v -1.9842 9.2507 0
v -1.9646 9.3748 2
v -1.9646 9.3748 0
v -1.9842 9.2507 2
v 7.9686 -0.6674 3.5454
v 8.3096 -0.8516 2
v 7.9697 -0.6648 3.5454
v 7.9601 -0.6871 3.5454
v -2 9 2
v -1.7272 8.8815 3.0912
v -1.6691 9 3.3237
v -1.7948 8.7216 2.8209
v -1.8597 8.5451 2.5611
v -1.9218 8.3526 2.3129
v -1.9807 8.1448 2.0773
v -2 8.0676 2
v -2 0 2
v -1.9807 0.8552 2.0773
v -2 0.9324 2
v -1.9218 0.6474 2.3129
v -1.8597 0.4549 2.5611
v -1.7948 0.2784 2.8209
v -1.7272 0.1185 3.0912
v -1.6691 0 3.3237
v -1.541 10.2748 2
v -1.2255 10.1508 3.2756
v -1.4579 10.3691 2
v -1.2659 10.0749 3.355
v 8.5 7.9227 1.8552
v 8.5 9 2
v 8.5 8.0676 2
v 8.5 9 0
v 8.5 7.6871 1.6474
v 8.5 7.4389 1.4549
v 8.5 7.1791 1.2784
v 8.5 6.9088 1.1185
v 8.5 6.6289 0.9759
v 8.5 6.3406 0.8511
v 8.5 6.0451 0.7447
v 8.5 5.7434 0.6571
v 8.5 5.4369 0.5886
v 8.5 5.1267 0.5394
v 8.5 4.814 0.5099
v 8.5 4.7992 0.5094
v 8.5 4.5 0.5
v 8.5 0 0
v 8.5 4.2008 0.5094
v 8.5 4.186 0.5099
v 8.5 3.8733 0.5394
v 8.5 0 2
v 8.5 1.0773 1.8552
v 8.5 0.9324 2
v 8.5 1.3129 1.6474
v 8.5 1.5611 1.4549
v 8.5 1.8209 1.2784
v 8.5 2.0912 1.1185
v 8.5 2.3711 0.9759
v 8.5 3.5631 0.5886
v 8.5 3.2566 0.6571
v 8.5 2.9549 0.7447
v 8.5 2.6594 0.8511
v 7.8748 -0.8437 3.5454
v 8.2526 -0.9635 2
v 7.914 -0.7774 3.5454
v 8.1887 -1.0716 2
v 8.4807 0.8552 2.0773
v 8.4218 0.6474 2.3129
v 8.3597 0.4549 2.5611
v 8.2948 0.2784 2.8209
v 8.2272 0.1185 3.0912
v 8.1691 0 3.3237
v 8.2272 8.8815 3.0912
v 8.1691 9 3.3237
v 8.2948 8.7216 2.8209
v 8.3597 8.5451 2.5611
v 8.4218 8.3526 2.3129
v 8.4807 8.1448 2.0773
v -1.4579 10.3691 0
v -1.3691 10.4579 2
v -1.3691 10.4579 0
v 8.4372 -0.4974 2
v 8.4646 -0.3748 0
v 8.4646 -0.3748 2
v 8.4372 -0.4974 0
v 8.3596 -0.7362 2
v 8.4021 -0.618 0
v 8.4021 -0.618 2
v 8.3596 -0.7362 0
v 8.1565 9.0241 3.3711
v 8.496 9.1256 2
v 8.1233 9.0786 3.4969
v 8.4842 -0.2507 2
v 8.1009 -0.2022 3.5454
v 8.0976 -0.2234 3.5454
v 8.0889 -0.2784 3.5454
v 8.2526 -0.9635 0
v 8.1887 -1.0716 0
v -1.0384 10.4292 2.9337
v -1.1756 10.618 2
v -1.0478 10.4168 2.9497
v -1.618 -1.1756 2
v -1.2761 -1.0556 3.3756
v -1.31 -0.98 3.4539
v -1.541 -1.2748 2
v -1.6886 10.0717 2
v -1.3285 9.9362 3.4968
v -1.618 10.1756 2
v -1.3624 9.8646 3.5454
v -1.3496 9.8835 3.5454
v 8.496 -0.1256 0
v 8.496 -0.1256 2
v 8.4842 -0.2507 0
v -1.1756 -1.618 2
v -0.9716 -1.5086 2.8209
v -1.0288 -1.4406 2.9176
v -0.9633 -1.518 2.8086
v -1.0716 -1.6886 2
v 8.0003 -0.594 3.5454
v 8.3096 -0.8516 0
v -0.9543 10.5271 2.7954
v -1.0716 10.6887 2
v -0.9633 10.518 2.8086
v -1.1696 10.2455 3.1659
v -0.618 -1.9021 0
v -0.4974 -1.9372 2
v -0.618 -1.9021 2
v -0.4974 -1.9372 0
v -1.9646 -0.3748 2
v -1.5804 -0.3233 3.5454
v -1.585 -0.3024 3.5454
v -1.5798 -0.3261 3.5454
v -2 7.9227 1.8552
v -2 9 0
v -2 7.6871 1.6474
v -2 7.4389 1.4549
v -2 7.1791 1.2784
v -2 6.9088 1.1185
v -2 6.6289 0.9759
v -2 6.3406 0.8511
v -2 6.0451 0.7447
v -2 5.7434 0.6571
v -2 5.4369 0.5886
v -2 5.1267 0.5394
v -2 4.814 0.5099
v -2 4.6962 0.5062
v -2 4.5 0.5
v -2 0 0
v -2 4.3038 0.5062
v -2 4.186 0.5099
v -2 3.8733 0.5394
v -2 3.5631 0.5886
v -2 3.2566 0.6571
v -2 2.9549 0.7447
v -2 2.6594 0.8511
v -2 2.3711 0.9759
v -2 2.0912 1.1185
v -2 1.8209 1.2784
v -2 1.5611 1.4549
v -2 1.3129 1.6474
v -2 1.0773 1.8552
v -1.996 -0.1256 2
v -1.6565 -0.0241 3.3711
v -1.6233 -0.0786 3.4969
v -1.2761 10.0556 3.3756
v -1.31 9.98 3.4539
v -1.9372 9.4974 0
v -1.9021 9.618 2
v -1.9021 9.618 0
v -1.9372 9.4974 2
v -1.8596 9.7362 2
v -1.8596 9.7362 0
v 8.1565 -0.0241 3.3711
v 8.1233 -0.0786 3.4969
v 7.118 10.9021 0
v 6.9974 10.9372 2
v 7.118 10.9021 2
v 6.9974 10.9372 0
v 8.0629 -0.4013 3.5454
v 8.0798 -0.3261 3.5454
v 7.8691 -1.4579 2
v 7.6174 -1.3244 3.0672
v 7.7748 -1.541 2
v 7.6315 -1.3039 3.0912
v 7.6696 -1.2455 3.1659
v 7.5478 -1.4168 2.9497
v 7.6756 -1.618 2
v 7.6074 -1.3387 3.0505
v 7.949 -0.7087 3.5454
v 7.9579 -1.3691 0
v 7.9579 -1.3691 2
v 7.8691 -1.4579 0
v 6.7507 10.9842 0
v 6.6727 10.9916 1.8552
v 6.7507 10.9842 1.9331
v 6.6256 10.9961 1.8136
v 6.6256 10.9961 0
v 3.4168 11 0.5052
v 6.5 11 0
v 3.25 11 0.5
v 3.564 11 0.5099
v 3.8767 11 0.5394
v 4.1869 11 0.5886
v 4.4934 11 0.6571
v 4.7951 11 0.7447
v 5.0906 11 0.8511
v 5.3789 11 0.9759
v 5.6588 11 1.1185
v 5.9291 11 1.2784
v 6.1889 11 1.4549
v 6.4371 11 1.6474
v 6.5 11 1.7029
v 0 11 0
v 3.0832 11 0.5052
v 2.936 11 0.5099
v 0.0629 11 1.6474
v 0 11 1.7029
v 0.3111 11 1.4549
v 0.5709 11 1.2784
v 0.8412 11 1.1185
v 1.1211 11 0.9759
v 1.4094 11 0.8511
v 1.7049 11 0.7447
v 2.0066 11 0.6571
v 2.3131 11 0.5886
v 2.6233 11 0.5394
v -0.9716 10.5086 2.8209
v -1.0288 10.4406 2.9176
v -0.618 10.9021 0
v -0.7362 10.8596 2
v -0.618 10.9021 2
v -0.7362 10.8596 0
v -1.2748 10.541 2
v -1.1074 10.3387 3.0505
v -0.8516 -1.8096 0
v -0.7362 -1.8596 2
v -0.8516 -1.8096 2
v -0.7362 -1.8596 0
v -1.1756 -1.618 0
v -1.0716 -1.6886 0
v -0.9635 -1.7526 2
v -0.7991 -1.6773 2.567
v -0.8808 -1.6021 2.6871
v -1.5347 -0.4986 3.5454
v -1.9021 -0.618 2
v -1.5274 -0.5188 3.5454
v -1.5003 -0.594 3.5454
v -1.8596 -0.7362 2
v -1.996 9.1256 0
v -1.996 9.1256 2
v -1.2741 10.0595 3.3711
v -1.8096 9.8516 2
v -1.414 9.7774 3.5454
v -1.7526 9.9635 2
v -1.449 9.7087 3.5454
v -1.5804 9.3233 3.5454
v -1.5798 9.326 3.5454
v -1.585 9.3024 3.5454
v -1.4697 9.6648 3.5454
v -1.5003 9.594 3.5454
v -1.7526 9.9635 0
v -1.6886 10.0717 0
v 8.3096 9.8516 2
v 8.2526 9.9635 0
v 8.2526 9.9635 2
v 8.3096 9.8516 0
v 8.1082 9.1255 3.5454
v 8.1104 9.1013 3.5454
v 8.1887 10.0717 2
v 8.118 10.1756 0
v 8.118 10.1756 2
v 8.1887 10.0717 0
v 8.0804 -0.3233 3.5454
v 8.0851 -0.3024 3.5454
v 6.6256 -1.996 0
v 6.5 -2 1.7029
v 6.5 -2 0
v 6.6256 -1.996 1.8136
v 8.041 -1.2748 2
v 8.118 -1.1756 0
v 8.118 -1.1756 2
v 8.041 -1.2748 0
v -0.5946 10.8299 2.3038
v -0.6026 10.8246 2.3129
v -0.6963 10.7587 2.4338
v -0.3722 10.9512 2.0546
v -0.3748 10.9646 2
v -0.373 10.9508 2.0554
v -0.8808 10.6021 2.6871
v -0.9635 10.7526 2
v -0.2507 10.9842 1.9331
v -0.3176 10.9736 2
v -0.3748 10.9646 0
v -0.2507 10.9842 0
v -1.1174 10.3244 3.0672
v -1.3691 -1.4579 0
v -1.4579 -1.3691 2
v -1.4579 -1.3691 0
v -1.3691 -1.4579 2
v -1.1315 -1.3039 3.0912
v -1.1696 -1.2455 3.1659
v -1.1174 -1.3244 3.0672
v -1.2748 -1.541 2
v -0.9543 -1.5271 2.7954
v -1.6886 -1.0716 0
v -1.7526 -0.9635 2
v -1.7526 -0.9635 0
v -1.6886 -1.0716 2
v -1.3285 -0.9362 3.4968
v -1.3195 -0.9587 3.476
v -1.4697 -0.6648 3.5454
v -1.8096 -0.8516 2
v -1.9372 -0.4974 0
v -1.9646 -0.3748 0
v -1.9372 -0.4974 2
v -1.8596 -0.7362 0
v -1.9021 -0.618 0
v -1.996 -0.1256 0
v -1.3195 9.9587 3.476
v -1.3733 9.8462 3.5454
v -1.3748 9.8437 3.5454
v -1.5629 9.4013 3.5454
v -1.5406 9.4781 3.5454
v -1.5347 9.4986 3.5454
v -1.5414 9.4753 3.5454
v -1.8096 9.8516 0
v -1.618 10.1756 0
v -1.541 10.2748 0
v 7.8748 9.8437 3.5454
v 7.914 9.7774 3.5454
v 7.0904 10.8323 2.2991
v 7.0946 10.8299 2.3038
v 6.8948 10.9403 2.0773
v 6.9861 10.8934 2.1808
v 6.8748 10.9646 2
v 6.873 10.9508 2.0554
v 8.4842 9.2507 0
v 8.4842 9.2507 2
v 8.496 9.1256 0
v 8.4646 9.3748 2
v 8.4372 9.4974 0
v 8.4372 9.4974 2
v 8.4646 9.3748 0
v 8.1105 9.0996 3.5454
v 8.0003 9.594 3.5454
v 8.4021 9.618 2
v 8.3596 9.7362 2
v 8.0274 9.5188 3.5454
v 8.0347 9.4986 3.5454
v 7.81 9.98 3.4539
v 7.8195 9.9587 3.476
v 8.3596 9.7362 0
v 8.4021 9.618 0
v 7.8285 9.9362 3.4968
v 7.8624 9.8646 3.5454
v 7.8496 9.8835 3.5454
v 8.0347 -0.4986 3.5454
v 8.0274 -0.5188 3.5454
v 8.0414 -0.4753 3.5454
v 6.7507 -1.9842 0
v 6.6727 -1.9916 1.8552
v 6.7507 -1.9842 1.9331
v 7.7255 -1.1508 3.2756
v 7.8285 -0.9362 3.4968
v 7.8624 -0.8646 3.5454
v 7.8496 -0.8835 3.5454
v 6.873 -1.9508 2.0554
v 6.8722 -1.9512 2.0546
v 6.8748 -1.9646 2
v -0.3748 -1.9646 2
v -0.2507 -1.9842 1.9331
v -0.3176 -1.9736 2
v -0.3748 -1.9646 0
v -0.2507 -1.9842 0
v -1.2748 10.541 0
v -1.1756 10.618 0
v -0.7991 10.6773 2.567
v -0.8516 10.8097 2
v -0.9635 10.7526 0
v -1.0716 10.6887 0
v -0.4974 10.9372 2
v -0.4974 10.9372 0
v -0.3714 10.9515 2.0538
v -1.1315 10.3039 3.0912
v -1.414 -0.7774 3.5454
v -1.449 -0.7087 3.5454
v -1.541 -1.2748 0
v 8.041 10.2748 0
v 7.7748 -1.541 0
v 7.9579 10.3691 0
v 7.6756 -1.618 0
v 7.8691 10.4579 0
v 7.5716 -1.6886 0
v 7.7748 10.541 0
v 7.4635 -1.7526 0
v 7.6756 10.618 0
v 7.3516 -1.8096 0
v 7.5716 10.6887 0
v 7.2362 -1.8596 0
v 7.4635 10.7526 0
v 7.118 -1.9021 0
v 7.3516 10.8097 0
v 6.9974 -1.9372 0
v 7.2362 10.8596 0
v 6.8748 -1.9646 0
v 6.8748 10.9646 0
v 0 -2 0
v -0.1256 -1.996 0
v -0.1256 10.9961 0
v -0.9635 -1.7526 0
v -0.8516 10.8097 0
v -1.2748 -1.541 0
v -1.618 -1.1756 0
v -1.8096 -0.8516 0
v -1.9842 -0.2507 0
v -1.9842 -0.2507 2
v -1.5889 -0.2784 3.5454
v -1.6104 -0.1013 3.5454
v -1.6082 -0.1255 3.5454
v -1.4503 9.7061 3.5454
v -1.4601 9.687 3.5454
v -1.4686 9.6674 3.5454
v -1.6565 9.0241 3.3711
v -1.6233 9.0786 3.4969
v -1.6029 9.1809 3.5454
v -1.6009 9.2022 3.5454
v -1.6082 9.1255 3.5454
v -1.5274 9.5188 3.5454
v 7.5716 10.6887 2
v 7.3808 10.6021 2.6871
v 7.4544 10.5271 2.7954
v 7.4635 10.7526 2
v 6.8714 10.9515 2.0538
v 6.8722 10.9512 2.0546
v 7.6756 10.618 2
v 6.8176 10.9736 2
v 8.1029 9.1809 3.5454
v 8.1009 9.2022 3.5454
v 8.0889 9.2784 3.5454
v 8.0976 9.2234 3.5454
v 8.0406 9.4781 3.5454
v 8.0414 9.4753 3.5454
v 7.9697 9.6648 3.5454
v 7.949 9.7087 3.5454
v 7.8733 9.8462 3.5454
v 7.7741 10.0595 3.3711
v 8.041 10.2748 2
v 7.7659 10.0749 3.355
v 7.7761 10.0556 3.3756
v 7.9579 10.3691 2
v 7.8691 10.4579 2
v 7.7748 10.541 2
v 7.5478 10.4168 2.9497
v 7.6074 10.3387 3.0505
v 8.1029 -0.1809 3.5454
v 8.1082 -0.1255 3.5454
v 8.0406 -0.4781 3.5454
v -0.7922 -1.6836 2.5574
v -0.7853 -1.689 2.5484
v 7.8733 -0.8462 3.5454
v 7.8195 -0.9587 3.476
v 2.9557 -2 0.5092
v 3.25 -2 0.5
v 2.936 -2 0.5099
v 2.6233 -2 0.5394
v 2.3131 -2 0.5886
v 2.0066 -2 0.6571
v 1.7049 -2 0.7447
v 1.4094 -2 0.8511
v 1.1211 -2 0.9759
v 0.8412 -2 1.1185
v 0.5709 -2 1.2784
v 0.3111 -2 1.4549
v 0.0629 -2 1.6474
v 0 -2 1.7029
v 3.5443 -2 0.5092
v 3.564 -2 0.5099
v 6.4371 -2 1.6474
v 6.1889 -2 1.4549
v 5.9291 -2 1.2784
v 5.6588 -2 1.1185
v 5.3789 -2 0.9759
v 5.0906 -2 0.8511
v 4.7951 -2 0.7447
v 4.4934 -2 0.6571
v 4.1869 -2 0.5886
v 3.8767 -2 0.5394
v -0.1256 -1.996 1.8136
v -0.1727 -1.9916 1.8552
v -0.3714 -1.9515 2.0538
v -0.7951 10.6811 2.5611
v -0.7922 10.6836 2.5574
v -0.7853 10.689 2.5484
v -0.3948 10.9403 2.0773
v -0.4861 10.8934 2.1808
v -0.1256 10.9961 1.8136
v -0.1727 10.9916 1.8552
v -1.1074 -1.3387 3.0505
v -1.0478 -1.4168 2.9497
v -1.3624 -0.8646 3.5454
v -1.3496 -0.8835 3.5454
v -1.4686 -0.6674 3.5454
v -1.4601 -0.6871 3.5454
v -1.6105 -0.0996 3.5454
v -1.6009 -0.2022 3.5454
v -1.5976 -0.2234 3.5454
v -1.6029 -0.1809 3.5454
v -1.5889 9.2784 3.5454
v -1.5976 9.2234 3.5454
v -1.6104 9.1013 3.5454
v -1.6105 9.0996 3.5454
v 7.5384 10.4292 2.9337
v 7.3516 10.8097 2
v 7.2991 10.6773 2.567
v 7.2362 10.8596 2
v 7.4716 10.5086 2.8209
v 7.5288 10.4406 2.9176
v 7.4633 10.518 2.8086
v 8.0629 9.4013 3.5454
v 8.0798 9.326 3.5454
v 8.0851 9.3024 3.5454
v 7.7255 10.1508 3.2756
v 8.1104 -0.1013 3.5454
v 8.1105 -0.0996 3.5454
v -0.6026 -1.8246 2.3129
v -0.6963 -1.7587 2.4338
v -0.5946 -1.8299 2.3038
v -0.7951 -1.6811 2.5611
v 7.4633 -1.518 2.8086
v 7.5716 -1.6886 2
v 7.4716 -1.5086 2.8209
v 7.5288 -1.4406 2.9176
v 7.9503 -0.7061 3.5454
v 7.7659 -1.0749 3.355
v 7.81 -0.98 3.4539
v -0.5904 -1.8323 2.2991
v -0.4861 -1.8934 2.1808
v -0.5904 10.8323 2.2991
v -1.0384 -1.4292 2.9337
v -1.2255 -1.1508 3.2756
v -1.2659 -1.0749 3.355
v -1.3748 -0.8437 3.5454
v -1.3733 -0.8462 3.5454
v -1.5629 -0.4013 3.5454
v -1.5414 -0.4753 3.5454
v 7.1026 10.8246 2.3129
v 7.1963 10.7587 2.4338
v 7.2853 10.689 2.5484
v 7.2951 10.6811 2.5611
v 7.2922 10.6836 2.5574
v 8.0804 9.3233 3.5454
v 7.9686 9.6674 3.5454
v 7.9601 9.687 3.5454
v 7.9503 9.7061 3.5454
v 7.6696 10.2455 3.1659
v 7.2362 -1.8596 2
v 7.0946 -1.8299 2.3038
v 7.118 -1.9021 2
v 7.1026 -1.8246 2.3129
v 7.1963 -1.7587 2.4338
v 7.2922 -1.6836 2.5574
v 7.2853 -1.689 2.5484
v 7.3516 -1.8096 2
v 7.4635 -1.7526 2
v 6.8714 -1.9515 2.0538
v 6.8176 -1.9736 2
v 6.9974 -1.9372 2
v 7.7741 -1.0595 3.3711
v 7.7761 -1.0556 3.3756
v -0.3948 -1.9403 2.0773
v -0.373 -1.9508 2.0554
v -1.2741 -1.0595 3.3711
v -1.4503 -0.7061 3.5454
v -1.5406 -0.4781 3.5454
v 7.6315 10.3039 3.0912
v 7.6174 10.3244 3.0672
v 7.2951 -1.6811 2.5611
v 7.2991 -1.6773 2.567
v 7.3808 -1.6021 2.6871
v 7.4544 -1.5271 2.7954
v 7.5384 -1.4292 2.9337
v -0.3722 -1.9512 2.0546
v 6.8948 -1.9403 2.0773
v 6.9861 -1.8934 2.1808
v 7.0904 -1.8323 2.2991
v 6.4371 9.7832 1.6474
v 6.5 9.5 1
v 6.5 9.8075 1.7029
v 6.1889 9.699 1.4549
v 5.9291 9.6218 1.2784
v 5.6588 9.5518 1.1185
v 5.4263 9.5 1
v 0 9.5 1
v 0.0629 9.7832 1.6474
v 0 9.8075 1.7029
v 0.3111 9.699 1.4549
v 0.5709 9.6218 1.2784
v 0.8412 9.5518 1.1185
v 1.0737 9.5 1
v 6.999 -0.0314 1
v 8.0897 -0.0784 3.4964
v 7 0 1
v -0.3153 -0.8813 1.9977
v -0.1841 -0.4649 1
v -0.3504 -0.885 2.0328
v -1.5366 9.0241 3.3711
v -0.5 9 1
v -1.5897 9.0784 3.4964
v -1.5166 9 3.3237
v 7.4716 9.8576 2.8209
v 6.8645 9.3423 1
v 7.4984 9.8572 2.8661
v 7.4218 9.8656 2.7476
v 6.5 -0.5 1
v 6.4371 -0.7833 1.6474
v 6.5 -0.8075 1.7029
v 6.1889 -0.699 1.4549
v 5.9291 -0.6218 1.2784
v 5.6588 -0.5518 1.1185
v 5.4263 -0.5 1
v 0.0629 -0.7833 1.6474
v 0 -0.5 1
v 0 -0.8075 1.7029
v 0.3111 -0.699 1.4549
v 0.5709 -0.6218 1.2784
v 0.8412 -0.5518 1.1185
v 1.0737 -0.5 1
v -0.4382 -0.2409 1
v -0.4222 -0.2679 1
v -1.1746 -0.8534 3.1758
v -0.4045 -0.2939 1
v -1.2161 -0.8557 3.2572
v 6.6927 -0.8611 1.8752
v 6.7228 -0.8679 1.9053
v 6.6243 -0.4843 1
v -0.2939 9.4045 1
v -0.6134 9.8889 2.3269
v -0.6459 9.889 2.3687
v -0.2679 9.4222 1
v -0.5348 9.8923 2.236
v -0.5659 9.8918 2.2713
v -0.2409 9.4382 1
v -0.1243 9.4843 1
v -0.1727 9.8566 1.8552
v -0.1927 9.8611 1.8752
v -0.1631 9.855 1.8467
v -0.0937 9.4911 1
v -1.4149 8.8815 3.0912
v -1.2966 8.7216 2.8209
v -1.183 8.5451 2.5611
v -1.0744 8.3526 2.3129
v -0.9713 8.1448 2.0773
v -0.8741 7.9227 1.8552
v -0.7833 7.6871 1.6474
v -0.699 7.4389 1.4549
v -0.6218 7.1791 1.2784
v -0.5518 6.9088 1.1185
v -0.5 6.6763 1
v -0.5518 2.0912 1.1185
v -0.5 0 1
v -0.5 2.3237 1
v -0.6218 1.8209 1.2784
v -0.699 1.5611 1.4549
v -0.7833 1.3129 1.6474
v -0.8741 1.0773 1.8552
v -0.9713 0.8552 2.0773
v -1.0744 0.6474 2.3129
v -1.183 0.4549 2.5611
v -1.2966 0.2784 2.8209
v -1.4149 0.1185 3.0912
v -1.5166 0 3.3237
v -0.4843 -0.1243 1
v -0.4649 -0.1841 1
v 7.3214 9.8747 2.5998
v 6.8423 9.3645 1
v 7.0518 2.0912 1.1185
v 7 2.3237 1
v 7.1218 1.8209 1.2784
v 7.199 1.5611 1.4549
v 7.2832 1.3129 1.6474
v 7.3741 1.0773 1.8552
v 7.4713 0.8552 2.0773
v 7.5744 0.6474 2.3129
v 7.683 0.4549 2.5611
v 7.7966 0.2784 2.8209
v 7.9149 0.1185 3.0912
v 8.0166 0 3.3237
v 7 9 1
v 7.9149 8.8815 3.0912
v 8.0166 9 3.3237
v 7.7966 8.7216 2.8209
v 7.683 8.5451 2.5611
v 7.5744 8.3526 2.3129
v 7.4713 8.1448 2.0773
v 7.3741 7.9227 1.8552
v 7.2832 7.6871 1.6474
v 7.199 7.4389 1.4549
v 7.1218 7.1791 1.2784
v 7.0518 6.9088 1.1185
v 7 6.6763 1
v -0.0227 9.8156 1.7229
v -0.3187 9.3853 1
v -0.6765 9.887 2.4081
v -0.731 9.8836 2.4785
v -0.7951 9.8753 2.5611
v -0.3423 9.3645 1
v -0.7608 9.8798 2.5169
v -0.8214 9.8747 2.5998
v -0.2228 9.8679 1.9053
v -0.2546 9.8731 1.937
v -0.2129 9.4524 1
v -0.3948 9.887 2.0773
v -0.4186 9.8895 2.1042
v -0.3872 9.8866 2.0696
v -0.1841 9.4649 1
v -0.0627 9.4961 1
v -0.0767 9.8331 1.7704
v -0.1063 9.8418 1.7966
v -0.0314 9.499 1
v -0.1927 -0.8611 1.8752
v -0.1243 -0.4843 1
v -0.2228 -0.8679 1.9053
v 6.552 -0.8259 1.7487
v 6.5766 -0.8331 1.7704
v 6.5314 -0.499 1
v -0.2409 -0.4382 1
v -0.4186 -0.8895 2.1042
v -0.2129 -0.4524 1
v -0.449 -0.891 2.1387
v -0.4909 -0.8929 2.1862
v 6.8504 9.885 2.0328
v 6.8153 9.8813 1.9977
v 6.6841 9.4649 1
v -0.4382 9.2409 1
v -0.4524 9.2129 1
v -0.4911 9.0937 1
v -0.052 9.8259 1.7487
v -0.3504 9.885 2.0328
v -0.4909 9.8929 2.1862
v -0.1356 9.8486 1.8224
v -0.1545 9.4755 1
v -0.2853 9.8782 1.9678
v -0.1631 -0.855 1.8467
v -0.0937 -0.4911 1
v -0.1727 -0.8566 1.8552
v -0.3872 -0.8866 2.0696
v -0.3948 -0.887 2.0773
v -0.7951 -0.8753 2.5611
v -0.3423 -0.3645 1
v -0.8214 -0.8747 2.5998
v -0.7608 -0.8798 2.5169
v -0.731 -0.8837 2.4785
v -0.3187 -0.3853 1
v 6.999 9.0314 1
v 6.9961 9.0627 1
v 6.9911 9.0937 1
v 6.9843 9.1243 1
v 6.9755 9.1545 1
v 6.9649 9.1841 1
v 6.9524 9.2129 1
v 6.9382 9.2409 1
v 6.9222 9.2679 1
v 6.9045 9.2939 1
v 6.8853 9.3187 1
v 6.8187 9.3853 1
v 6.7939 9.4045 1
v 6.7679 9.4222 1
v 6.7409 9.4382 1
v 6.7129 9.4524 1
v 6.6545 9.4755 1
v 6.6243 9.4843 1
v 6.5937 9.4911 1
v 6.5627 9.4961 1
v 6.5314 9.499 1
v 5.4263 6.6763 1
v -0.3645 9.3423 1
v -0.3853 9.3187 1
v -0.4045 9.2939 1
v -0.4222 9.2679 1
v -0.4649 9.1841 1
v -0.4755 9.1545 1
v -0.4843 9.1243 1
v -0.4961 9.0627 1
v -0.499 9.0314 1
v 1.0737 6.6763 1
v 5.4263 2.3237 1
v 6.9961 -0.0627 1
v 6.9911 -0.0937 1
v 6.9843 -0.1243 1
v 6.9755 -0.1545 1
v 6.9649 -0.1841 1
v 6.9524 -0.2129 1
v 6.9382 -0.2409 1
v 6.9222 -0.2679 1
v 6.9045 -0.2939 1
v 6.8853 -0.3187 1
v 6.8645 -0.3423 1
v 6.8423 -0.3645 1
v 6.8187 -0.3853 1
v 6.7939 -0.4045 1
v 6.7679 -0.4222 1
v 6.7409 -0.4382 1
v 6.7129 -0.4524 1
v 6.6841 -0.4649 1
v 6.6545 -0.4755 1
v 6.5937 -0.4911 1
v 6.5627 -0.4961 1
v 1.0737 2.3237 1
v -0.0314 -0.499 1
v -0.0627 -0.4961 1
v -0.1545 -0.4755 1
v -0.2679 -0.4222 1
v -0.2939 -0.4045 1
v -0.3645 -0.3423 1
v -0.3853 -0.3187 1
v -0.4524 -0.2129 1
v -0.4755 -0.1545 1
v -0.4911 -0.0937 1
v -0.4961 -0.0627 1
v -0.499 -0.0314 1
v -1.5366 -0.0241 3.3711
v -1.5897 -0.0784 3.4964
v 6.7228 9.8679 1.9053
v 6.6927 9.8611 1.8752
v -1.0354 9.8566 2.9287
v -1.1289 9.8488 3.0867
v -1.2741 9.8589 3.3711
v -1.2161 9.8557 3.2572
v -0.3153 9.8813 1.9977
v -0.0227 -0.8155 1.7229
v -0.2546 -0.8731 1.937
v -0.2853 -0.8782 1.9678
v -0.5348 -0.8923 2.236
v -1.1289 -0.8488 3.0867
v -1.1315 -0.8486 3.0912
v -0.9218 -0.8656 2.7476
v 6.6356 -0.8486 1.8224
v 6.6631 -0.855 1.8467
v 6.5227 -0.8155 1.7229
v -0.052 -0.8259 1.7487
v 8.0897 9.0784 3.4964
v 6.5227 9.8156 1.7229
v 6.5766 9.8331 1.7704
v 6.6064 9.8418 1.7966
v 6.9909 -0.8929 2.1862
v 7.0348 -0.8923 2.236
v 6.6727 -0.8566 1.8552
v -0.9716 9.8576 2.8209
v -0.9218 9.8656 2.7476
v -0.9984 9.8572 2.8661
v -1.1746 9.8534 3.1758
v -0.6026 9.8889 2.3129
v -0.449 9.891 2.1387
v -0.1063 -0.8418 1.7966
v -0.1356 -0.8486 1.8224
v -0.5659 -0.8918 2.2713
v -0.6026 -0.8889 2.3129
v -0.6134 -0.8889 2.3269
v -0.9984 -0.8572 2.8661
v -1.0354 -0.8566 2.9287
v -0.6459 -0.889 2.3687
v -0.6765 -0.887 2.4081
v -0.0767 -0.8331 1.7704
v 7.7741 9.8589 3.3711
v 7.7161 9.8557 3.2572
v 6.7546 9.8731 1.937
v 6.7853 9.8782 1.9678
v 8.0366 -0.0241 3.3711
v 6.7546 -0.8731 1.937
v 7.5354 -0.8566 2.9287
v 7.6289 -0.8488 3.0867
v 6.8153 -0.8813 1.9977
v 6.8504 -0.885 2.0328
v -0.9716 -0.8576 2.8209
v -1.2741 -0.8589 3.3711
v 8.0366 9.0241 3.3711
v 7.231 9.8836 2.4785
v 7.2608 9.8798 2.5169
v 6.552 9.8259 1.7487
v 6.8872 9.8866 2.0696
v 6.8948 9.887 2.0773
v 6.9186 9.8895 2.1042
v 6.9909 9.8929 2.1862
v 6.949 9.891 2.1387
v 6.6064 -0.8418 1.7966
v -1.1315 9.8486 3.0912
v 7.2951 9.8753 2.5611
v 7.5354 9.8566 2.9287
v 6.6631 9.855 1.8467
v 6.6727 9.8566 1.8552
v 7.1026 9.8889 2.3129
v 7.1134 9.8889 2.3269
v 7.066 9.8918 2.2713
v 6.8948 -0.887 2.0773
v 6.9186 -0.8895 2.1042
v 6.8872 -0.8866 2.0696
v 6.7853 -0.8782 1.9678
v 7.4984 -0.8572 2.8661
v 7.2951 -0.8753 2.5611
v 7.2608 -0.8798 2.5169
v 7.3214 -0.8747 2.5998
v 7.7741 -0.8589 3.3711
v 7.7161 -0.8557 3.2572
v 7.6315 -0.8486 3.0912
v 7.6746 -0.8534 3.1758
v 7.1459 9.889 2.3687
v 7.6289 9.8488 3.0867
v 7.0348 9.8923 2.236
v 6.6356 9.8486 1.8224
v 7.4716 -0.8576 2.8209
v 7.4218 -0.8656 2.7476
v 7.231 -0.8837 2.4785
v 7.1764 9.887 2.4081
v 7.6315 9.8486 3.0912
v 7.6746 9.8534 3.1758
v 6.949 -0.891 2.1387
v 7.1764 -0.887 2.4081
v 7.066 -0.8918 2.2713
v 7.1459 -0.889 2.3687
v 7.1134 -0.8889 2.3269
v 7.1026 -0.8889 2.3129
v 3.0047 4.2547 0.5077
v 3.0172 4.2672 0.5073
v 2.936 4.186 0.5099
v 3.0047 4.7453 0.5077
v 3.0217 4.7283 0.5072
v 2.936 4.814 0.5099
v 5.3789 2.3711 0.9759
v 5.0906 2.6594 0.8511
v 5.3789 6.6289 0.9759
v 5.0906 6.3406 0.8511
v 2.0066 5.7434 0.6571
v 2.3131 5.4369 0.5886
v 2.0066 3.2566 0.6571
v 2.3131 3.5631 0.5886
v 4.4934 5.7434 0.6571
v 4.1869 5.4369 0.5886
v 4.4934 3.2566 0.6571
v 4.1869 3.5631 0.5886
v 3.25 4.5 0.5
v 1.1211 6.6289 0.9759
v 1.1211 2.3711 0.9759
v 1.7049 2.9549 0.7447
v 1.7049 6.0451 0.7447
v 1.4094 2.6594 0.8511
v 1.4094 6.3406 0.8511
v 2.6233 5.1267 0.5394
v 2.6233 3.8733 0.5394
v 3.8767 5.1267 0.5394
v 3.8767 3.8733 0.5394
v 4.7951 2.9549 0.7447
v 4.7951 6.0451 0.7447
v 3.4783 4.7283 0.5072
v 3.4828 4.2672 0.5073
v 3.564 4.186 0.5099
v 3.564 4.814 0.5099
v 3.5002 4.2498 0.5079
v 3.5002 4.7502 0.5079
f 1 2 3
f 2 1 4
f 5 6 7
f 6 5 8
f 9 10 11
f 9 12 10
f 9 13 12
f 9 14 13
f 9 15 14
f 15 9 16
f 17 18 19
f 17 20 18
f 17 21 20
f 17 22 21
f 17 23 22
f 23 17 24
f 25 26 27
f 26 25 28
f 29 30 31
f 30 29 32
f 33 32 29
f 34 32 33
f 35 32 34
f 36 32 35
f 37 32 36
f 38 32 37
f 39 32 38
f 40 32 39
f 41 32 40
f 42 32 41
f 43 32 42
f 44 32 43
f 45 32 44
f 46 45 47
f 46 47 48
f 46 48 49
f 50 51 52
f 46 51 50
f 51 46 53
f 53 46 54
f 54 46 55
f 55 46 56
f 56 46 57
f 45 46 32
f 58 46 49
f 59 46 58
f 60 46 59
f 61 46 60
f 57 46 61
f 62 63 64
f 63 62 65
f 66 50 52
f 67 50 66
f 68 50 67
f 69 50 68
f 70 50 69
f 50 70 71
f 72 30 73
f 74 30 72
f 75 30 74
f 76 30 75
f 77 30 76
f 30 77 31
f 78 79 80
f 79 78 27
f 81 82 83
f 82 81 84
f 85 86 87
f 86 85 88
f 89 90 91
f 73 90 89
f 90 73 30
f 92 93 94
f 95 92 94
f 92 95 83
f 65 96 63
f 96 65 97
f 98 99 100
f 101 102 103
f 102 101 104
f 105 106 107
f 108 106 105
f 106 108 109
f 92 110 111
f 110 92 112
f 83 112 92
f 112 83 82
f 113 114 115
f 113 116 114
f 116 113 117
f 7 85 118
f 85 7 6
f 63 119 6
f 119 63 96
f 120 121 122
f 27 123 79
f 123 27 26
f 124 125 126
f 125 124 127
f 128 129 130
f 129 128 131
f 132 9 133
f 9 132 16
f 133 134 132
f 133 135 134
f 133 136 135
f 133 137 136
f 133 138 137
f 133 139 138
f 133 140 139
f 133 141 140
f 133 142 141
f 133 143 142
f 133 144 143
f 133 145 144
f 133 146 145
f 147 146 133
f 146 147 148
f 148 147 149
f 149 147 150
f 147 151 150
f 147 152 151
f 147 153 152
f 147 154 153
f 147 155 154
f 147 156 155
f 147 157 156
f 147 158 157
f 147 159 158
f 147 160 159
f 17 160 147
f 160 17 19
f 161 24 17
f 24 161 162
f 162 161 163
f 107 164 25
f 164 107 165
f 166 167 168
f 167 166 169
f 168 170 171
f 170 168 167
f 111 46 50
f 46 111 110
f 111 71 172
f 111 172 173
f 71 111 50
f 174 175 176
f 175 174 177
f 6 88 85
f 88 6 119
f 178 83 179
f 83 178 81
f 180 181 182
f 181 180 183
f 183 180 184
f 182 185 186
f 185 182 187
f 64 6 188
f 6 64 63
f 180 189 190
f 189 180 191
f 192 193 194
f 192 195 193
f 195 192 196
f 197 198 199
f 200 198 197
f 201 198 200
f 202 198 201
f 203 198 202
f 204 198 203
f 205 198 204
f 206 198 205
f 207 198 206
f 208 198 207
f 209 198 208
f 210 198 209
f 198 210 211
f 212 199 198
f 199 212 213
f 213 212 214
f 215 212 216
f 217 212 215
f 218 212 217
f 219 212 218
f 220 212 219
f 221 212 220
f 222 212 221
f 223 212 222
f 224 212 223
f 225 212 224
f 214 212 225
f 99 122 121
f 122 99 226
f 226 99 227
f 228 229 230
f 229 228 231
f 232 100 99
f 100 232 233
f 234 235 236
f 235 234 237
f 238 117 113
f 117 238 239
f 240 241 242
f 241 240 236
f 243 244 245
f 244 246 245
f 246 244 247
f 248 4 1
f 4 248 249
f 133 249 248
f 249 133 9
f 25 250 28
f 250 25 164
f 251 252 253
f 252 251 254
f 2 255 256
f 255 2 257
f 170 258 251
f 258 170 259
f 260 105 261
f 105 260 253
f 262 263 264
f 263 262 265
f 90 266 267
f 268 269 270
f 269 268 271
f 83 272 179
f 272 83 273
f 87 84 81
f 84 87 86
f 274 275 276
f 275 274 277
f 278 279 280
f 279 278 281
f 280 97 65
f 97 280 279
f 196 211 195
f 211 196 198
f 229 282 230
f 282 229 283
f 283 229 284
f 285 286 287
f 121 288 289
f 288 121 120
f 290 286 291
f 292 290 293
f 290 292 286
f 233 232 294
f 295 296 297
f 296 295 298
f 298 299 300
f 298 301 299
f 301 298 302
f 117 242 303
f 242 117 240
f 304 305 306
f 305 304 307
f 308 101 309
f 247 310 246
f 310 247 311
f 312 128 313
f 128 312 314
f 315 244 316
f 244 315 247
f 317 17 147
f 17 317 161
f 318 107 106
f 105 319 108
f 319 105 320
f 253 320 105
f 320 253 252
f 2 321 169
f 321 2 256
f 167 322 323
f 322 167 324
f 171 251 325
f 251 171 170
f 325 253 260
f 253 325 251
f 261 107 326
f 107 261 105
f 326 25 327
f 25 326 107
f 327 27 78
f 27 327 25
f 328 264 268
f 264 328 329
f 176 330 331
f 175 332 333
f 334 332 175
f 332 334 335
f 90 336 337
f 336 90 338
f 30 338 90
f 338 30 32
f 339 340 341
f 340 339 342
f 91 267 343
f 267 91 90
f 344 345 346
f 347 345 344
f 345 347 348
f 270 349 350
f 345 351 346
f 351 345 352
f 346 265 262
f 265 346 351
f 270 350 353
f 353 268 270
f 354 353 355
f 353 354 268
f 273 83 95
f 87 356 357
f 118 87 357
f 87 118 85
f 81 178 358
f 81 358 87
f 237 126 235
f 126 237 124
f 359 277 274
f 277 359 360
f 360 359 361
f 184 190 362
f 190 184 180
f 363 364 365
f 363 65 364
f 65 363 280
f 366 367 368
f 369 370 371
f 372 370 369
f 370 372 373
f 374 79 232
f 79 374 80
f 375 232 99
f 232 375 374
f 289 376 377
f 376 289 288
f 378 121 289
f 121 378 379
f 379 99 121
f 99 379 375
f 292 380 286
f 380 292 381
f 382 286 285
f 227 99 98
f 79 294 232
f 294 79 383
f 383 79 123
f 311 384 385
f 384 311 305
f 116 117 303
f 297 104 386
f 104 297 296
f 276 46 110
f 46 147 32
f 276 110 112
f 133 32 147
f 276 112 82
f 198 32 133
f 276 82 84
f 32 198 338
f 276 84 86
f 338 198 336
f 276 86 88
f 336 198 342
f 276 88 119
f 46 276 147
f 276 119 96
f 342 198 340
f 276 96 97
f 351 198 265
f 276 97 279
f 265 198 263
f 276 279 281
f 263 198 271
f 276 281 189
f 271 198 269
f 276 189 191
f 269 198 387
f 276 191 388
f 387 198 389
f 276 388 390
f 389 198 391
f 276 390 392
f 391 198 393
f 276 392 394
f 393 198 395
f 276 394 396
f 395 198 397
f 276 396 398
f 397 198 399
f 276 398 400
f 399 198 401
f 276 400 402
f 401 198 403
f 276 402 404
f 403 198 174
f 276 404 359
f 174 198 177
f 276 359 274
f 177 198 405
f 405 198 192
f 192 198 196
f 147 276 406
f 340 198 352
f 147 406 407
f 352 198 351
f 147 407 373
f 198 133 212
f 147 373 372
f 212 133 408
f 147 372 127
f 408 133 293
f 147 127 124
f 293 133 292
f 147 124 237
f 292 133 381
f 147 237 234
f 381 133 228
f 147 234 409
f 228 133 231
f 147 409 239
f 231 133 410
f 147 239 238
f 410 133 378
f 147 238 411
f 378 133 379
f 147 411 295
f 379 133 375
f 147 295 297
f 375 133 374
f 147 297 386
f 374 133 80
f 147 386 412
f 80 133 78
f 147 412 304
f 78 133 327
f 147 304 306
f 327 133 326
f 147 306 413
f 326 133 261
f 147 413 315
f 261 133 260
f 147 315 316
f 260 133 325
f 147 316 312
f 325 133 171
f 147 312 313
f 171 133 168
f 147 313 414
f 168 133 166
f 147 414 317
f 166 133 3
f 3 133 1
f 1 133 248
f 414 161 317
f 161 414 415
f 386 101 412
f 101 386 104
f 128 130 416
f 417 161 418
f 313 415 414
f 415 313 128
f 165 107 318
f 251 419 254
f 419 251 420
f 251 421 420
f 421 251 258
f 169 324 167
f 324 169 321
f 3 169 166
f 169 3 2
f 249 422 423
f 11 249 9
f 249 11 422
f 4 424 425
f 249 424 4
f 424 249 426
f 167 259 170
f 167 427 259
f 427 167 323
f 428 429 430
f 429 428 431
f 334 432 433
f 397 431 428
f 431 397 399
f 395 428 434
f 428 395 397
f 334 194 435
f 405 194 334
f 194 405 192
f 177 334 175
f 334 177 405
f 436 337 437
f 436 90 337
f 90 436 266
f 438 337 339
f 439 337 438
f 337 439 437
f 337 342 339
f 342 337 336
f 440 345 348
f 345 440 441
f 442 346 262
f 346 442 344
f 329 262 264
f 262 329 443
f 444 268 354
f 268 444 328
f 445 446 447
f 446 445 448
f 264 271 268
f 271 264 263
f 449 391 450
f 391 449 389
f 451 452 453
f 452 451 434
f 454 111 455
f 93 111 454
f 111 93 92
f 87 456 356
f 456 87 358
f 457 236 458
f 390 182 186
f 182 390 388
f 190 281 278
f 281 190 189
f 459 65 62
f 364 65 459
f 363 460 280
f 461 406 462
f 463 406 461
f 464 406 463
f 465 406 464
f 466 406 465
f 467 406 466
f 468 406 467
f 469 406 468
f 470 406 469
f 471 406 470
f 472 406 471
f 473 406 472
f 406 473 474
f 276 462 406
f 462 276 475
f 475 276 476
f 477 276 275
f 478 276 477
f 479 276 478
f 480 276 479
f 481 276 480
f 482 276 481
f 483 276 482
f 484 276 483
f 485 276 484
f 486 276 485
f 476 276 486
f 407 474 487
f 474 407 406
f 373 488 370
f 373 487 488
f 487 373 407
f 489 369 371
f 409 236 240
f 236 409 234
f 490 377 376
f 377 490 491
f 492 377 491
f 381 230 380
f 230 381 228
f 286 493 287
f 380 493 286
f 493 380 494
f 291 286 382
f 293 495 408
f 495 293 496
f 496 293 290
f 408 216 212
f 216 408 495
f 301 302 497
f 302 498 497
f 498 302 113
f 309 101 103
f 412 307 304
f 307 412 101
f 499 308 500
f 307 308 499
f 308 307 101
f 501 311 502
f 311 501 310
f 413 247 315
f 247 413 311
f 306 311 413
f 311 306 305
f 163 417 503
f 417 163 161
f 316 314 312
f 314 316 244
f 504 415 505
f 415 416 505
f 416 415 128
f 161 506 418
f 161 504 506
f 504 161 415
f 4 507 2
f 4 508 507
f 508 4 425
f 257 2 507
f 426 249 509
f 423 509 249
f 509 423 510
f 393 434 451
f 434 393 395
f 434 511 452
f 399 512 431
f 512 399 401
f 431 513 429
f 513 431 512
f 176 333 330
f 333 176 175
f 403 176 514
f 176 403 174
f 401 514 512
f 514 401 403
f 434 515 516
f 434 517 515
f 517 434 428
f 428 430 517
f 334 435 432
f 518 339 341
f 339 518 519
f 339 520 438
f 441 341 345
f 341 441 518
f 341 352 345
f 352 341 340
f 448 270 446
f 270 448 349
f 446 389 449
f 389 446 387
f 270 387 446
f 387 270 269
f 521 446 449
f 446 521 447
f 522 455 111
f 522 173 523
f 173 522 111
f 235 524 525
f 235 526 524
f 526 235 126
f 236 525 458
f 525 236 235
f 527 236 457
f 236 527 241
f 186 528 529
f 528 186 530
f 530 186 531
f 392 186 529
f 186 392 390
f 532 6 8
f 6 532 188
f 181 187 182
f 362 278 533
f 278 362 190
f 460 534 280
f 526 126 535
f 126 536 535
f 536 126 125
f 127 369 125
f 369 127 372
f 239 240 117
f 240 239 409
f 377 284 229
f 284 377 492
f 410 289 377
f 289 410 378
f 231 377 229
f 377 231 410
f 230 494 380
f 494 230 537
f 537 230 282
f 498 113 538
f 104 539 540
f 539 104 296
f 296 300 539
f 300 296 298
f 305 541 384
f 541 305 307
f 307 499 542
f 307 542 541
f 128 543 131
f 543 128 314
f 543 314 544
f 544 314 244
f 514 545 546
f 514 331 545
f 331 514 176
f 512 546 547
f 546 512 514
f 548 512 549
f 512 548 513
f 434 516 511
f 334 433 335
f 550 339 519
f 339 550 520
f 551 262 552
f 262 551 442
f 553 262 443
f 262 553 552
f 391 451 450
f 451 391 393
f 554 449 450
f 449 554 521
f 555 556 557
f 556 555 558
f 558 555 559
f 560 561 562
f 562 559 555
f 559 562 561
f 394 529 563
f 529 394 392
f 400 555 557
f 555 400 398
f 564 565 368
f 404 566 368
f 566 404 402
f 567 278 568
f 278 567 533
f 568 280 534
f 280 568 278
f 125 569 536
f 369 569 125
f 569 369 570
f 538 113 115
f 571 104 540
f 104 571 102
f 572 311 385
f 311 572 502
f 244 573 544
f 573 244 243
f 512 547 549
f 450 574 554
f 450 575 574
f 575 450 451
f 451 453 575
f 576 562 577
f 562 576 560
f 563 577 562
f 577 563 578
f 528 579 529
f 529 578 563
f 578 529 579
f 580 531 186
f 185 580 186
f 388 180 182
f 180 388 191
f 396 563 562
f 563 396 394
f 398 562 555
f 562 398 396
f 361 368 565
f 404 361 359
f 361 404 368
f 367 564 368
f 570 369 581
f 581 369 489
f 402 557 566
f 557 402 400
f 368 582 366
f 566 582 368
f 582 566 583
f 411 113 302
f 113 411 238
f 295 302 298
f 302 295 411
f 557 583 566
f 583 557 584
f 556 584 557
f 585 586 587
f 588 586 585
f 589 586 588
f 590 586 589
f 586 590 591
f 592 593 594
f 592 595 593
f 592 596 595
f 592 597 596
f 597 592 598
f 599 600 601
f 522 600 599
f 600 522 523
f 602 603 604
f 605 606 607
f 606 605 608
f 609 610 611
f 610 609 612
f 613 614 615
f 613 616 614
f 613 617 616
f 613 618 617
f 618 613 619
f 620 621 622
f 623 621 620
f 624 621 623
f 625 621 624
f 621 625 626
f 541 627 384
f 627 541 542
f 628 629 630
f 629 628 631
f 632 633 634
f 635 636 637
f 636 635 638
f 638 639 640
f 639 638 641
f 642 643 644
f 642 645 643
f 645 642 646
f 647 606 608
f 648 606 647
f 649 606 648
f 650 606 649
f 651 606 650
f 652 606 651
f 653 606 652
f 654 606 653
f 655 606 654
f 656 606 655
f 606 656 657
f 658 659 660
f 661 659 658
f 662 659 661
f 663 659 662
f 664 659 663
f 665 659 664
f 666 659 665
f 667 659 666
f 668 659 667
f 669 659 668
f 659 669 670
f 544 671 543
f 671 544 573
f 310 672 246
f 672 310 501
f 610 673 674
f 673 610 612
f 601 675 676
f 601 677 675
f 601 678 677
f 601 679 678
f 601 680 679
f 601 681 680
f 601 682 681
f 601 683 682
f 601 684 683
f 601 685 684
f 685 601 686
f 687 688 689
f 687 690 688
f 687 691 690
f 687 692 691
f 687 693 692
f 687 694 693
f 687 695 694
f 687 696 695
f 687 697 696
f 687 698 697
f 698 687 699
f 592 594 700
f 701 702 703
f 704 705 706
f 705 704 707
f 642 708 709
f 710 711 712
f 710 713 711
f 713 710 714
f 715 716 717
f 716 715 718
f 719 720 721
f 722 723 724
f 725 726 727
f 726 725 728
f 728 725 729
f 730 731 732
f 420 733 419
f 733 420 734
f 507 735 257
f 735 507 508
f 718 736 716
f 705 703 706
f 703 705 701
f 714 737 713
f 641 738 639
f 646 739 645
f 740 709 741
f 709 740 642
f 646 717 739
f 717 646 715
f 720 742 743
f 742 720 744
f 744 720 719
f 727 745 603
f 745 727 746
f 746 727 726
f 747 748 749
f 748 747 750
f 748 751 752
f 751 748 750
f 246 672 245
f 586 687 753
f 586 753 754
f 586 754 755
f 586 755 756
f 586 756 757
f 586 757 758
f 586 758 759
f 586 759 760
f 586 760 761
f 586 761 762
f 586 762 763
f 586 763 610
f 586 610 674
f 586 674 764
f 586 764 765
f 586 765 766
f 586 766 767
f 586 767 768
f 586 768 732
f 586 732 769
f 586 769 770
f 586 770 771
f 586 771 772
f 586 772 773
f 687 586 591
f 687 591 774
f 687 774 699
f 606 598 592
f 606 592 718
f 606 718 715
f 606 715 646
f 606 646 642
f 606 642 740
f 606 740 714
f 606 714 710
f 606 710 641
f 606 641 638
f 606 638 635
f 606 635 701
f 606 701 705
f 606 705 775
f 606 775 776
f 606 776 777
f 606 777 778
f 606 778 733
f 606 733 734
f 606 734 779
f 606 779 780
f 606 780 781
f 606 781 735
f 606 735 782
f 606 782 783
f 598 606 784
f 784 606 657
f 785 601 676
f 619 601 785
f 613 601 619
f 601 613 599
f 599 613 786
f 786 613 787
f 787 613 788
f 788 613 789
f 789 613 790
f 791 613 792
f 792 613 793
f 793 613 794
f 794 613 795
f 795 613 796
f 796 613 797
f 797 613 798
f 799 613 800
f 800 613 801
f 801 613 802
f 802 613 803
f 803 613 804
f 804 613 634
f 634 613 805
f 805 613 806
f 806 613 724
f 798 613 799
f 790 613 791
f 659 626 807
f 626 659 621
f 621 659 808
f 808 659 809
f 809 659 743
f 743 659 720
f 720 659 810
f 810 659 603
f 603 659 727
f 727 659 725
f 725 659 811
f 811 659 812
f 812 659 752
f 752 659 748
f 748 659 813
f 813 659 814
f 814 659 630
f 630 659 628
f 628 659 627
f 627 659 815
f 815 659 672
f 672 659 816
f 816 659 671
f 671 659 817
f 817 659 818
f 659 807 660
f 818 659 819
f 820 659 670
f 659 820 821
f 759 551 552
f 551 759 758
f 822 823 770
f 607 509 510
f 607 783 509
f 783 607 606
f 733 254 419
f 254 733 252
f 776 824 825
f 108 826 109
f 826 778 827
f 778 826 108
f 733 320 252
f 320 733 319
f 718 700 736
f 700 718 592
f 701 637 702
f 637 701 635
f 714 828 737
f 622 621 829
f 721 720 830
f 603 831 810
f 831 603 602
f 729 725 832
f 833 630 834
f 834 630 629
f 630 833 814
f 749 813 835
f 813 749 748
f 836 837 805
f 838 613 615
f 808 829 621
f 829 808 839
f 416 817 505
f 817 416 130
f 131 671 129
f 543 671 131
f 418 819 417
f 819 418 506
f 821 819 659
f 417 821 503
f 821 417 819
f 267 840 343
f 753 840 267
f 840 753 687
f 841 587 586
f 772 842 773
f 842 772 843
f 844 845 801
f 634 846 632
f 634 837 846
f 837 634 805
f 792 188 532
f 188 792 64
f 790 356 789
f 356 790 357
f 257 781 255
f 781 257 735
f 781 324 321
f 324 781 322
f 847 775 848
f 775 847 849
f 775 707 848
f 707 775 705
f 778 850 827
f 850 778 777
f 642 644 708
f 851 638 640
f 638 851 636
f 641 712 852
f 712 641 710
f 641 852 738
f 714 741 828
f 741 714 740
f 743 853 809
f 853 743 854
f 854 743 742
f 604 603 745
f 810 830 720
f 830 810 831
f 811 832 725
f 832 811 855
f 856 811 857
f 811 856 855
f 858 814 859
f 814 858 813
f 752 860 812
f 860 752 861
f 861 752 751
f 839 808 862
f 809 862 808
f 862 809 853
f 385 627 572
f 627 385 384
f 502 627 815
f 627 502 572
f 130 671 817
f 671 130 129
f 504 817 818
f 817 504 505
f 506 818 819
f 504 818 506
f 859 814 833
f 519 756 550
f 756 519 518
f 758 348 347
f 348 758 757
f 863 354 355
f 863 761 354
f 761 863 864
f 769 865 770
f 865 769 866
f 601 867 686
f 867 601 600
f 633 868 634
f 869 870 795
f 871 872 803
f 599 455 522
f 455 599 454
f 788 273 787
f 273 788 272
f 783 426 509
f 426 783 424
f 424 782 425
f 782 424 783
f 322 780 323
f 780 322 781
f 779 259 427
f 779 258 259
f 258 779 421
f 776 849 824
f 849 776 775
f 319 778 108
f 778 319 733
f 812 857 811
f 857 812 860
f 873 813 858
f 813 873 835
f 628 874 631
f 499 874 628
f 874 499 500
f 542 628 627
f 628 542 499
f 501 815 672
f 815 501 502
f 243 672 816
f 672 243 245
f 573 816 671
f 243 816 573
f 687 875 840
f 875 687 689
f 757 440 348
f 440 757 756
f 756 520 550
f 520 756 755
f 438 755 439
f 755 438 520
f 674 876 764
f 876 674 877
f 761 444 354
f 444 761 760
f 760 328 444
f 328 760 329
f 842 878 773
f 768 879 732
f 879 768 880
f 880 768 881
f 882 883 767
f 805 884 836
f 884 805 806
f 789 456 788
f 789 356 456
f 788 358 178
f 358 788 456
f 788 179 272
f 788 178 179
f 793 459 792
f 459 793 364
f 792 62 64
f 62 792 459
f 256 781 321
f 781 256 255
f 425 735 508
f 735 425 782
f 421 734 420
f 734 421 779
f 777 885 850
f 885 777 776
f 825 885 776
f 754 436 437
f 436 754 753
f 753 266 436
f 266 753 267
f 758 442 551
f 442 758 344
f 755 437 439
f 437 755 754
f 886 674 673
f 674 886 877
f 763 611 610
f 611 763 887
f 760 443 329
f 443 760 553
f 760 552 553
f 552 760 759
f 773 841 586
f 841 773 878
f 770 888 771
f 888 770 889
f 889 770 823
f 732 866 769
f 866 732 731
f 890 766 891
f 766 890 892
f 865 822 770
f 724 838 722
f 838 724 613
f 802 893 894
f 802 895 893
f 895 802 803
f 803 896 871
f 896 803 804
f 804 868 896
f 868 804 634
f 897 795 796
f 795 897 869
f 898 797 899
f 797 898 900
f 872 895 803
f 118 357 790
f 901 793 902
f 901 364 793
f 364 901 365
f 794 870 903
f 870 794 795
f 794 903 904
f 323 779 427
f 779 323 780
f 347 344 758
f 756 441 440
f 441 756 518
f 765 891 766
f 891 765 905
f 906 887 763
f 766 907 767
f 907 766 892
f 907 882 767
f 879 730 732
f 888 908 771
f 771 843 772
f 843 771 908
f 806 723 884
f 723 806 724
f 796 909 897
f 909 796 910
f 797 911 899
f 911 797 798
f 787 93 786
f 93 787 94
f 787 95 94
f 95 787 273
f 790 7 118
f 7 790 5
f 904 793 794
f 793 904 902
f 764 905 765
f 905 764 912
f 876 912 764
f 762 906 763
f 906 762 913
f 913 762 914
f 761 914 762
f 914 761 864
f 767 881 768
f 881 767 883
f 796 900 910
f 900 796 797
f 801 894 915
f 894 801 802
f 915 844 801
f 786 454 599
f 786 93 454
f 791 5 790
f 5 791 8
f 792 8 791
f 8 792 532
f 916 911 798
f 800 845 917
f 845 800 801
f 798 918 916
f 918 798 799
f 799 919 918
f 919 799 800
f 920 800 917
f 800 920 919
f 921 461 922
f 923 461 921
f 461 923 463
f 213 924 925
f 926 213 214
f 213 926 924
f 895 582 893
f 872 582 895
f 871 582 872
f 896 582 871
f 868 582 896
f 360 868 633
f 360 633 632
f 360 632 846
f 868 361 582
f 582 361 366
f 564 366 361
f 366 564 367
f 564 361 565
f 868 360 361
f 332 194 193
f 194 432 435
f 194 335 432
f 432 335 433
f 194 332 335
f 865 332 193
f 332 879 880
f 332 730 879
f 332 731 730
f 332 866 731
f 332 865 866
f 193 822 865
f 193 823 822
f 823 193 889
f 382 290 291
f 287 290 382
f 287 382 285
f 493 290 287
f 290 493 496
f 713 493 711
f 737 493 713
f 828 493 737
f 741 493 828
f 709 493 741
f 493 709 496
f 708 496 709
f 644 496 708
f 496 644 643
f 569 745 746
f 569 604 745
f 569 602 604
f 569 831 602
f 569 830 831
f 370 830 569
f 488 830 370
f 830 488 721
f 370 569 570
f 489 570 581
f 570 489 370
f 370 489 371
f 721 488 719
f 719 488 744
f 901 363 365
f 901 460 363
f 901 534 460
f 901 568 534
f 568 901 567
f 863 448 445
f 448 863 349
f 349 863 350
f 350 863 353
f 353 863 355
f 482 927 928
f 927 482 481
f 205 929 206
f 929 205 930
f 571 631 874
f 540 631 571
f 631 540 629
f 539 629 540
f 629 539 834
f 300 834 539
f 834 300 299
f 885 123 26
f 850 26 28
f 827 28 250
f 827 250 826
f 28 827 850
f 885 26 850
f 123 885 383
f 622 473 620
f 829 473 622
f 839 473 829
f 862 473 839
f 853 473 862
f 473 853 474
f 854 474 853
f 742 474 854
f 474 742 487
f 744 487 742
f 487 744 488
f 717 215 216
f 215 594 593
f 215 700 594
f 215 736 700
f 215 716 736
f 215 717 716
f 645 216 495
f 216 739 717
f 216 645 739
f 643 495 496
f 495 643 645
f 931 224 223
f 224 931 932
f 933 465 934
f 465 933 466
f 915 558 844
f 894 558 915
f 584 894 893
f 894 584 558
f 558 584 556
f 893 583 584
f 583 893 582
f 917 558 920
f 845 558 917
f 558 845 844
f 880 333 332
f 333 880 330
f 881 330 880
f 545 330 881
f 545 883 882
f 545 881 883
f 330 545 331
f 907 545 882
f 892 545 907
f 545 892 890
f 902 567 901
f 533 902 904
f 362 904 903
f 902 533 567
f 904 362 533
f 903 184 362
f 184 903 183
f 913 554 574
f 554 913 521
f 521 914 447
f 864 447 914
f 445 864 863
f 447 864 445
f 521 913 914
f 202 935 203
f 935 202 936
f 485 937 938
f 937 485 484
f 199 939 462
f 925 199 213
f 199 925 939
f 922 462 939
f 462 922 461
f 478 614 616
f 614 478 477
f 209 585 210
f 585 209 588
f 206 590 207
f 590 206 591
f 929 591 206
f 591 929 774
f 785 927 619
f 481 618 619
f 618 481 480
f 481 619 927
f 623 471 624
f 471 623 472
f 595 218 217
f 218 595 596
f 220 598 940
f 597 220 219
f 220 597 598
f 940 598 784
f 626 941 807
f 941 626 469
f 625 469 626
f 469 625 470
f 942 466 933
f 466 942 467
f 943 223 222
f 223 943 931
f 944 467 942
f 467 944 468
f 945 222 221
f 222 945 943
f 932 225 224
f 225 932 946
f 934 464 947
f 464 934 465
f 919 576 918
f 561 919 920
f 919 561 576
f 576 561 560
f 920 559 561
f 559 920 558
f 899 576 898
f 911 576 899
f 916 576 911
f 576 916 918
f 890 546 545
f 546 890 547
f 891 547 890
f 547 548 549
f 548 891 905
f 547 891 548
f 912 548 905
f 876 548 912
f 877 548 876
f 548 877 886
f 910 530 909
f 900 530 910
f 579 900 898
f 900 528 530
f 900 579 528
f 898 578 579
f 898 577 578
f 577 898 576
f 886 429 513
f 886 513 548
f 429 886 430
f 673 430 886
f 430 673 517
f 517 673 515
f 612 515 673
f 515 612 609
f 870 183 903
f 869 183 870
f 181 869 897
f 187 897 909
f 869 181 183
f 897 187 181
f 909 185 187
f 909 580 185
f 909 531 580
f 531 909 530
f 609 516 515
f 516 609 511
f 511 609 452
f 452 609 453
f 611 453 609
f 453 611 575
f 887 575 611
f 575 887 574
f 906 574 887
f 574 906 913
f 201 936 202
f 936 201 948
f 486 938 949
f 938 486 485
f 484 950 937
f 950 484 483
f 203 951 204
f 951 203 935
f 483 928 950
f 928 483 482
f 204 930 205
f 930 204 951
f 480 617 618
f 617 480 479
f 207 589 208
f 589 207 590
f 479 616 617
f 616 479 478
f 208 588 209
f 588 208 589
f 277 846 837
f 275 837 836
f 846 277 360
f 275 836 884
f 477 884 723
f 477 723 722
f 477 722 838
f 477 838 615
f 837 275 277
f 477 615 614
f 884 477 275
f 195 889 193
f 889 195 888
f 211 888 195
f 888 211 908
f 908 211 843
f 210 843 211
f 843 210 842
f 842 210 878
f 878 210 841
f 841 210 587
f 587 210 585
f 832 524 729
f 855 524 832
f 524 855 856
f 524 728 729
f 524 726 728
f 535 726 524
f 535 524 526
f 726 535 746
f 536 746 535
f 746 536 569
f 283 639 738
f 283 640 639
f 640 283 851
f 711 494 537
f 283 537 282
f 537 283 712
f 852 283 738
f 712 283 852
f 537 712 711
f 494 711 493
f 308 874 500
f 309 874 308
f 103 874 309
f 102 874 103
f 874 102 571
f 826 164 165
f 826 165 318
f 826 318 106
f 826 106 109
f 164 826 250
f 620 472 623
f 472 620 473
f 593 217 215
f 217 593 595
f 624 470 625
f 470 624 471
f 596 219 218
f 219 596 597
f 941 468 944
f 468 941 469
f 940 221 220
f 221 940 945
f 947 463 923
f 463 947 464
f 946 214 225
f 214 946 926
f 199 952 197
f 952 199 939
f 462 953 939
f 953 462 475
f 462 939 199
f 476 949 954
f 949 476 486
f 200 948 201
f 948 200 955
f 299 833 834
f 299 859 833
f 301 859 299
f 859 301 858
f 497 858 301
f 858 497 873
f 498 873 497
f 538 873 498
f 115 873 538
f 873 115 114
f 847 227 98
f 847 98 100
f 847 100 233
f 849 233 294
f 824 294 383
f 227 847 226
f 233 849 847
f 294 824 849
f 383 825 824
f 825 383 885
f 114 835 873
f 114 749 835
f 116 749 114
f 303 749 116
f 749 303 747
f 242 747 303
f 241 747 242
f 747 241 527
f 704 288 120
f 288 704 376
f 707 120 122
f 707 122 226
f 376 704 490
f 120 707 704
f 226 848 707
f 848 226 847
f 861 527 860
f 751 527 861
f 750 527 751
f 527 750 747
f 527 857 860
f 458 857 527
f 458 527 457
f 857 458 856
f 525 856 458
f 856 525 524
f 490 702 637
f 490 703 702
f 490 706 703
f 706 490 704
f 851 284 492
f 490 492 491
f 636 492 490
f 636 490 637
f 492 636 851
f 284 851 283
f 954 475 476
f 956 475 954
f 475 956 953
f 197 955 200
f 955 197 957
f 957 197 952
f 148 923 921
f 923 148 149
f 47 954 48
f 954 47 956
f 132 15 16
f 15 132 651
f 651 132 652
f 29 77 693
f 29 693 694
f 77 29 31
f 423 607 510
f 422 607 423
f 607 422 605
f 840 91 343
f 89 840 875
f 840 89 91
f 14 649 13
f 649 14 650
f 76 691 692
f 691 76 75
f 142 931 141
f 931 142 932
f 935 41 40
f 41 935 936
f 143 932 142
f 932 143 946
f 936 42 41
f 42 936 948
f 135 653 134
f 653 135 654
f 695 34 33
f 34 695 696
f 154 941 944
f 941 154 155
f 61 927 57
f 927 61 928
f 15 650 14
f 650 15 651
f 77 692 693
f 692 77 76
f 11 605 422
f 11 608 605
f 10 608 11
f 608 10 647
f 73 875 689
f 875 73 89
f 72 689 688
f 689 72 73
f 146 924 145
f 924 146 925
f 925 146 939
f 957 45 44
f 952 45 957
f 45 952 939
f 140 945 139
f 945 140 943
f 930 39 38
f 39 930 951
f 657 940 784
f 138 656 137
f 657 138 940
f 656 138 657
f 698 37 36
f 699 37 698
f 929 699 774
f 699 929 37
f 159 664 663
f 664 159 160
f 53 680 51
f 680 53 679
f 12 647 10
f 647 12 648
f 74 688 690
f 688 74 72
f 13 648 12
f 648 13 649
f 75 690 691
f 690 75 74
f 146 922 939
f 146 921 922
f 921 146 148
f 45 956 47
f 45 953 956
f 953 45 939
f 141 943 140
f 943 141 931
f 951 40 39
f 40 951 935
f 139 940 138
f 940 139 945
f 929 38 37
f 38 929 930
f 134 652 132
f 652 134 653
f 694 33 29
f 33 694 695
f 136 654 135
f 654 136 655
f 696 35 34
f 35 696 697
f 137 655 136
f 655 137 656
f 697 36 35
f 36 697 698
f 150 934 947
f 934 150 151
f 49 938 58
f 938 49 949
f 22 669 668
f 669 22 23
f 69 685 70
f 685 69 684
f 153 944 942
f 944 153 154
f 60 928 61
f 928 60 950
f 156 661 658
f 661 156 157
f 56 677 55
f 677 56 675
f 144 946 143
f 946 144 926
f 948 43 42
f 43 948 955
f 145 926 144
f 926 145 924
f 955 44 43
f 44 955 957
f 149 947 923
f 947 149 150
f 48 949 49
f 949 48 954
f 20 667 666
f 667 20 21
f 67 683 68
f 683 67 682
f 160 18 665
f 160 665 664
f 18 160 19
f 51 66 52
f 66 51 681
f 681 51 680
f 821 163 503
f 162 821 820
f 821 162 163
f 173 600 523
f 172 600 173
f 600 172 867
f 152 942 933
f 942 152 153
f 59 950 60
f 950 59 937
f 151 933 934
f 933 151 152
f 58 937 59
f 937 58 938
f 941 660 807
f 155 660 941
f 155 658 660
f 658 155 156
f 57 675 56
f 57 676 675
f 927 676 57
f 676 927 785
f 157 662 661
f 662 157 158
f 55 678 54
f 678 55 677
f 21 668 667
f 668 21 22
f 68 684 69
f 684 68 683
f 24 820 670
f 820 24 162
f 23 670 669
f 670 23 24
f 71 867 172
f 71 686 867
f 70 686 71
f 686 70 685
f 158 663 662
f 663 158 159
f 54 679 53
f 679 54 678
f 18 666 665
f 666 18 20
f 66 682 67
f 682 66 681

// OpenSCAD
$fn=100;
difference(){
    difference(){
        minkowski(){
        cube([6.5,9,2]);
        cylinder(4,d1=4,d2=2);
        }
        translate([0,0,1]){
            minkowski(){
            cube([6.5,9,2]);
            cylinder(8,d1=1,d2=8);
            }
        }
    }
    union(){
        translate([3.25,-4,5.5]){
            rotate([270,0,0]){
                cylinder(32,d=10);
            }
        }
        translate([10,4.5,5.5]){
            rotate([270,0,90]){
                cylinder(32,d=10);
            }
        }
    }
}
